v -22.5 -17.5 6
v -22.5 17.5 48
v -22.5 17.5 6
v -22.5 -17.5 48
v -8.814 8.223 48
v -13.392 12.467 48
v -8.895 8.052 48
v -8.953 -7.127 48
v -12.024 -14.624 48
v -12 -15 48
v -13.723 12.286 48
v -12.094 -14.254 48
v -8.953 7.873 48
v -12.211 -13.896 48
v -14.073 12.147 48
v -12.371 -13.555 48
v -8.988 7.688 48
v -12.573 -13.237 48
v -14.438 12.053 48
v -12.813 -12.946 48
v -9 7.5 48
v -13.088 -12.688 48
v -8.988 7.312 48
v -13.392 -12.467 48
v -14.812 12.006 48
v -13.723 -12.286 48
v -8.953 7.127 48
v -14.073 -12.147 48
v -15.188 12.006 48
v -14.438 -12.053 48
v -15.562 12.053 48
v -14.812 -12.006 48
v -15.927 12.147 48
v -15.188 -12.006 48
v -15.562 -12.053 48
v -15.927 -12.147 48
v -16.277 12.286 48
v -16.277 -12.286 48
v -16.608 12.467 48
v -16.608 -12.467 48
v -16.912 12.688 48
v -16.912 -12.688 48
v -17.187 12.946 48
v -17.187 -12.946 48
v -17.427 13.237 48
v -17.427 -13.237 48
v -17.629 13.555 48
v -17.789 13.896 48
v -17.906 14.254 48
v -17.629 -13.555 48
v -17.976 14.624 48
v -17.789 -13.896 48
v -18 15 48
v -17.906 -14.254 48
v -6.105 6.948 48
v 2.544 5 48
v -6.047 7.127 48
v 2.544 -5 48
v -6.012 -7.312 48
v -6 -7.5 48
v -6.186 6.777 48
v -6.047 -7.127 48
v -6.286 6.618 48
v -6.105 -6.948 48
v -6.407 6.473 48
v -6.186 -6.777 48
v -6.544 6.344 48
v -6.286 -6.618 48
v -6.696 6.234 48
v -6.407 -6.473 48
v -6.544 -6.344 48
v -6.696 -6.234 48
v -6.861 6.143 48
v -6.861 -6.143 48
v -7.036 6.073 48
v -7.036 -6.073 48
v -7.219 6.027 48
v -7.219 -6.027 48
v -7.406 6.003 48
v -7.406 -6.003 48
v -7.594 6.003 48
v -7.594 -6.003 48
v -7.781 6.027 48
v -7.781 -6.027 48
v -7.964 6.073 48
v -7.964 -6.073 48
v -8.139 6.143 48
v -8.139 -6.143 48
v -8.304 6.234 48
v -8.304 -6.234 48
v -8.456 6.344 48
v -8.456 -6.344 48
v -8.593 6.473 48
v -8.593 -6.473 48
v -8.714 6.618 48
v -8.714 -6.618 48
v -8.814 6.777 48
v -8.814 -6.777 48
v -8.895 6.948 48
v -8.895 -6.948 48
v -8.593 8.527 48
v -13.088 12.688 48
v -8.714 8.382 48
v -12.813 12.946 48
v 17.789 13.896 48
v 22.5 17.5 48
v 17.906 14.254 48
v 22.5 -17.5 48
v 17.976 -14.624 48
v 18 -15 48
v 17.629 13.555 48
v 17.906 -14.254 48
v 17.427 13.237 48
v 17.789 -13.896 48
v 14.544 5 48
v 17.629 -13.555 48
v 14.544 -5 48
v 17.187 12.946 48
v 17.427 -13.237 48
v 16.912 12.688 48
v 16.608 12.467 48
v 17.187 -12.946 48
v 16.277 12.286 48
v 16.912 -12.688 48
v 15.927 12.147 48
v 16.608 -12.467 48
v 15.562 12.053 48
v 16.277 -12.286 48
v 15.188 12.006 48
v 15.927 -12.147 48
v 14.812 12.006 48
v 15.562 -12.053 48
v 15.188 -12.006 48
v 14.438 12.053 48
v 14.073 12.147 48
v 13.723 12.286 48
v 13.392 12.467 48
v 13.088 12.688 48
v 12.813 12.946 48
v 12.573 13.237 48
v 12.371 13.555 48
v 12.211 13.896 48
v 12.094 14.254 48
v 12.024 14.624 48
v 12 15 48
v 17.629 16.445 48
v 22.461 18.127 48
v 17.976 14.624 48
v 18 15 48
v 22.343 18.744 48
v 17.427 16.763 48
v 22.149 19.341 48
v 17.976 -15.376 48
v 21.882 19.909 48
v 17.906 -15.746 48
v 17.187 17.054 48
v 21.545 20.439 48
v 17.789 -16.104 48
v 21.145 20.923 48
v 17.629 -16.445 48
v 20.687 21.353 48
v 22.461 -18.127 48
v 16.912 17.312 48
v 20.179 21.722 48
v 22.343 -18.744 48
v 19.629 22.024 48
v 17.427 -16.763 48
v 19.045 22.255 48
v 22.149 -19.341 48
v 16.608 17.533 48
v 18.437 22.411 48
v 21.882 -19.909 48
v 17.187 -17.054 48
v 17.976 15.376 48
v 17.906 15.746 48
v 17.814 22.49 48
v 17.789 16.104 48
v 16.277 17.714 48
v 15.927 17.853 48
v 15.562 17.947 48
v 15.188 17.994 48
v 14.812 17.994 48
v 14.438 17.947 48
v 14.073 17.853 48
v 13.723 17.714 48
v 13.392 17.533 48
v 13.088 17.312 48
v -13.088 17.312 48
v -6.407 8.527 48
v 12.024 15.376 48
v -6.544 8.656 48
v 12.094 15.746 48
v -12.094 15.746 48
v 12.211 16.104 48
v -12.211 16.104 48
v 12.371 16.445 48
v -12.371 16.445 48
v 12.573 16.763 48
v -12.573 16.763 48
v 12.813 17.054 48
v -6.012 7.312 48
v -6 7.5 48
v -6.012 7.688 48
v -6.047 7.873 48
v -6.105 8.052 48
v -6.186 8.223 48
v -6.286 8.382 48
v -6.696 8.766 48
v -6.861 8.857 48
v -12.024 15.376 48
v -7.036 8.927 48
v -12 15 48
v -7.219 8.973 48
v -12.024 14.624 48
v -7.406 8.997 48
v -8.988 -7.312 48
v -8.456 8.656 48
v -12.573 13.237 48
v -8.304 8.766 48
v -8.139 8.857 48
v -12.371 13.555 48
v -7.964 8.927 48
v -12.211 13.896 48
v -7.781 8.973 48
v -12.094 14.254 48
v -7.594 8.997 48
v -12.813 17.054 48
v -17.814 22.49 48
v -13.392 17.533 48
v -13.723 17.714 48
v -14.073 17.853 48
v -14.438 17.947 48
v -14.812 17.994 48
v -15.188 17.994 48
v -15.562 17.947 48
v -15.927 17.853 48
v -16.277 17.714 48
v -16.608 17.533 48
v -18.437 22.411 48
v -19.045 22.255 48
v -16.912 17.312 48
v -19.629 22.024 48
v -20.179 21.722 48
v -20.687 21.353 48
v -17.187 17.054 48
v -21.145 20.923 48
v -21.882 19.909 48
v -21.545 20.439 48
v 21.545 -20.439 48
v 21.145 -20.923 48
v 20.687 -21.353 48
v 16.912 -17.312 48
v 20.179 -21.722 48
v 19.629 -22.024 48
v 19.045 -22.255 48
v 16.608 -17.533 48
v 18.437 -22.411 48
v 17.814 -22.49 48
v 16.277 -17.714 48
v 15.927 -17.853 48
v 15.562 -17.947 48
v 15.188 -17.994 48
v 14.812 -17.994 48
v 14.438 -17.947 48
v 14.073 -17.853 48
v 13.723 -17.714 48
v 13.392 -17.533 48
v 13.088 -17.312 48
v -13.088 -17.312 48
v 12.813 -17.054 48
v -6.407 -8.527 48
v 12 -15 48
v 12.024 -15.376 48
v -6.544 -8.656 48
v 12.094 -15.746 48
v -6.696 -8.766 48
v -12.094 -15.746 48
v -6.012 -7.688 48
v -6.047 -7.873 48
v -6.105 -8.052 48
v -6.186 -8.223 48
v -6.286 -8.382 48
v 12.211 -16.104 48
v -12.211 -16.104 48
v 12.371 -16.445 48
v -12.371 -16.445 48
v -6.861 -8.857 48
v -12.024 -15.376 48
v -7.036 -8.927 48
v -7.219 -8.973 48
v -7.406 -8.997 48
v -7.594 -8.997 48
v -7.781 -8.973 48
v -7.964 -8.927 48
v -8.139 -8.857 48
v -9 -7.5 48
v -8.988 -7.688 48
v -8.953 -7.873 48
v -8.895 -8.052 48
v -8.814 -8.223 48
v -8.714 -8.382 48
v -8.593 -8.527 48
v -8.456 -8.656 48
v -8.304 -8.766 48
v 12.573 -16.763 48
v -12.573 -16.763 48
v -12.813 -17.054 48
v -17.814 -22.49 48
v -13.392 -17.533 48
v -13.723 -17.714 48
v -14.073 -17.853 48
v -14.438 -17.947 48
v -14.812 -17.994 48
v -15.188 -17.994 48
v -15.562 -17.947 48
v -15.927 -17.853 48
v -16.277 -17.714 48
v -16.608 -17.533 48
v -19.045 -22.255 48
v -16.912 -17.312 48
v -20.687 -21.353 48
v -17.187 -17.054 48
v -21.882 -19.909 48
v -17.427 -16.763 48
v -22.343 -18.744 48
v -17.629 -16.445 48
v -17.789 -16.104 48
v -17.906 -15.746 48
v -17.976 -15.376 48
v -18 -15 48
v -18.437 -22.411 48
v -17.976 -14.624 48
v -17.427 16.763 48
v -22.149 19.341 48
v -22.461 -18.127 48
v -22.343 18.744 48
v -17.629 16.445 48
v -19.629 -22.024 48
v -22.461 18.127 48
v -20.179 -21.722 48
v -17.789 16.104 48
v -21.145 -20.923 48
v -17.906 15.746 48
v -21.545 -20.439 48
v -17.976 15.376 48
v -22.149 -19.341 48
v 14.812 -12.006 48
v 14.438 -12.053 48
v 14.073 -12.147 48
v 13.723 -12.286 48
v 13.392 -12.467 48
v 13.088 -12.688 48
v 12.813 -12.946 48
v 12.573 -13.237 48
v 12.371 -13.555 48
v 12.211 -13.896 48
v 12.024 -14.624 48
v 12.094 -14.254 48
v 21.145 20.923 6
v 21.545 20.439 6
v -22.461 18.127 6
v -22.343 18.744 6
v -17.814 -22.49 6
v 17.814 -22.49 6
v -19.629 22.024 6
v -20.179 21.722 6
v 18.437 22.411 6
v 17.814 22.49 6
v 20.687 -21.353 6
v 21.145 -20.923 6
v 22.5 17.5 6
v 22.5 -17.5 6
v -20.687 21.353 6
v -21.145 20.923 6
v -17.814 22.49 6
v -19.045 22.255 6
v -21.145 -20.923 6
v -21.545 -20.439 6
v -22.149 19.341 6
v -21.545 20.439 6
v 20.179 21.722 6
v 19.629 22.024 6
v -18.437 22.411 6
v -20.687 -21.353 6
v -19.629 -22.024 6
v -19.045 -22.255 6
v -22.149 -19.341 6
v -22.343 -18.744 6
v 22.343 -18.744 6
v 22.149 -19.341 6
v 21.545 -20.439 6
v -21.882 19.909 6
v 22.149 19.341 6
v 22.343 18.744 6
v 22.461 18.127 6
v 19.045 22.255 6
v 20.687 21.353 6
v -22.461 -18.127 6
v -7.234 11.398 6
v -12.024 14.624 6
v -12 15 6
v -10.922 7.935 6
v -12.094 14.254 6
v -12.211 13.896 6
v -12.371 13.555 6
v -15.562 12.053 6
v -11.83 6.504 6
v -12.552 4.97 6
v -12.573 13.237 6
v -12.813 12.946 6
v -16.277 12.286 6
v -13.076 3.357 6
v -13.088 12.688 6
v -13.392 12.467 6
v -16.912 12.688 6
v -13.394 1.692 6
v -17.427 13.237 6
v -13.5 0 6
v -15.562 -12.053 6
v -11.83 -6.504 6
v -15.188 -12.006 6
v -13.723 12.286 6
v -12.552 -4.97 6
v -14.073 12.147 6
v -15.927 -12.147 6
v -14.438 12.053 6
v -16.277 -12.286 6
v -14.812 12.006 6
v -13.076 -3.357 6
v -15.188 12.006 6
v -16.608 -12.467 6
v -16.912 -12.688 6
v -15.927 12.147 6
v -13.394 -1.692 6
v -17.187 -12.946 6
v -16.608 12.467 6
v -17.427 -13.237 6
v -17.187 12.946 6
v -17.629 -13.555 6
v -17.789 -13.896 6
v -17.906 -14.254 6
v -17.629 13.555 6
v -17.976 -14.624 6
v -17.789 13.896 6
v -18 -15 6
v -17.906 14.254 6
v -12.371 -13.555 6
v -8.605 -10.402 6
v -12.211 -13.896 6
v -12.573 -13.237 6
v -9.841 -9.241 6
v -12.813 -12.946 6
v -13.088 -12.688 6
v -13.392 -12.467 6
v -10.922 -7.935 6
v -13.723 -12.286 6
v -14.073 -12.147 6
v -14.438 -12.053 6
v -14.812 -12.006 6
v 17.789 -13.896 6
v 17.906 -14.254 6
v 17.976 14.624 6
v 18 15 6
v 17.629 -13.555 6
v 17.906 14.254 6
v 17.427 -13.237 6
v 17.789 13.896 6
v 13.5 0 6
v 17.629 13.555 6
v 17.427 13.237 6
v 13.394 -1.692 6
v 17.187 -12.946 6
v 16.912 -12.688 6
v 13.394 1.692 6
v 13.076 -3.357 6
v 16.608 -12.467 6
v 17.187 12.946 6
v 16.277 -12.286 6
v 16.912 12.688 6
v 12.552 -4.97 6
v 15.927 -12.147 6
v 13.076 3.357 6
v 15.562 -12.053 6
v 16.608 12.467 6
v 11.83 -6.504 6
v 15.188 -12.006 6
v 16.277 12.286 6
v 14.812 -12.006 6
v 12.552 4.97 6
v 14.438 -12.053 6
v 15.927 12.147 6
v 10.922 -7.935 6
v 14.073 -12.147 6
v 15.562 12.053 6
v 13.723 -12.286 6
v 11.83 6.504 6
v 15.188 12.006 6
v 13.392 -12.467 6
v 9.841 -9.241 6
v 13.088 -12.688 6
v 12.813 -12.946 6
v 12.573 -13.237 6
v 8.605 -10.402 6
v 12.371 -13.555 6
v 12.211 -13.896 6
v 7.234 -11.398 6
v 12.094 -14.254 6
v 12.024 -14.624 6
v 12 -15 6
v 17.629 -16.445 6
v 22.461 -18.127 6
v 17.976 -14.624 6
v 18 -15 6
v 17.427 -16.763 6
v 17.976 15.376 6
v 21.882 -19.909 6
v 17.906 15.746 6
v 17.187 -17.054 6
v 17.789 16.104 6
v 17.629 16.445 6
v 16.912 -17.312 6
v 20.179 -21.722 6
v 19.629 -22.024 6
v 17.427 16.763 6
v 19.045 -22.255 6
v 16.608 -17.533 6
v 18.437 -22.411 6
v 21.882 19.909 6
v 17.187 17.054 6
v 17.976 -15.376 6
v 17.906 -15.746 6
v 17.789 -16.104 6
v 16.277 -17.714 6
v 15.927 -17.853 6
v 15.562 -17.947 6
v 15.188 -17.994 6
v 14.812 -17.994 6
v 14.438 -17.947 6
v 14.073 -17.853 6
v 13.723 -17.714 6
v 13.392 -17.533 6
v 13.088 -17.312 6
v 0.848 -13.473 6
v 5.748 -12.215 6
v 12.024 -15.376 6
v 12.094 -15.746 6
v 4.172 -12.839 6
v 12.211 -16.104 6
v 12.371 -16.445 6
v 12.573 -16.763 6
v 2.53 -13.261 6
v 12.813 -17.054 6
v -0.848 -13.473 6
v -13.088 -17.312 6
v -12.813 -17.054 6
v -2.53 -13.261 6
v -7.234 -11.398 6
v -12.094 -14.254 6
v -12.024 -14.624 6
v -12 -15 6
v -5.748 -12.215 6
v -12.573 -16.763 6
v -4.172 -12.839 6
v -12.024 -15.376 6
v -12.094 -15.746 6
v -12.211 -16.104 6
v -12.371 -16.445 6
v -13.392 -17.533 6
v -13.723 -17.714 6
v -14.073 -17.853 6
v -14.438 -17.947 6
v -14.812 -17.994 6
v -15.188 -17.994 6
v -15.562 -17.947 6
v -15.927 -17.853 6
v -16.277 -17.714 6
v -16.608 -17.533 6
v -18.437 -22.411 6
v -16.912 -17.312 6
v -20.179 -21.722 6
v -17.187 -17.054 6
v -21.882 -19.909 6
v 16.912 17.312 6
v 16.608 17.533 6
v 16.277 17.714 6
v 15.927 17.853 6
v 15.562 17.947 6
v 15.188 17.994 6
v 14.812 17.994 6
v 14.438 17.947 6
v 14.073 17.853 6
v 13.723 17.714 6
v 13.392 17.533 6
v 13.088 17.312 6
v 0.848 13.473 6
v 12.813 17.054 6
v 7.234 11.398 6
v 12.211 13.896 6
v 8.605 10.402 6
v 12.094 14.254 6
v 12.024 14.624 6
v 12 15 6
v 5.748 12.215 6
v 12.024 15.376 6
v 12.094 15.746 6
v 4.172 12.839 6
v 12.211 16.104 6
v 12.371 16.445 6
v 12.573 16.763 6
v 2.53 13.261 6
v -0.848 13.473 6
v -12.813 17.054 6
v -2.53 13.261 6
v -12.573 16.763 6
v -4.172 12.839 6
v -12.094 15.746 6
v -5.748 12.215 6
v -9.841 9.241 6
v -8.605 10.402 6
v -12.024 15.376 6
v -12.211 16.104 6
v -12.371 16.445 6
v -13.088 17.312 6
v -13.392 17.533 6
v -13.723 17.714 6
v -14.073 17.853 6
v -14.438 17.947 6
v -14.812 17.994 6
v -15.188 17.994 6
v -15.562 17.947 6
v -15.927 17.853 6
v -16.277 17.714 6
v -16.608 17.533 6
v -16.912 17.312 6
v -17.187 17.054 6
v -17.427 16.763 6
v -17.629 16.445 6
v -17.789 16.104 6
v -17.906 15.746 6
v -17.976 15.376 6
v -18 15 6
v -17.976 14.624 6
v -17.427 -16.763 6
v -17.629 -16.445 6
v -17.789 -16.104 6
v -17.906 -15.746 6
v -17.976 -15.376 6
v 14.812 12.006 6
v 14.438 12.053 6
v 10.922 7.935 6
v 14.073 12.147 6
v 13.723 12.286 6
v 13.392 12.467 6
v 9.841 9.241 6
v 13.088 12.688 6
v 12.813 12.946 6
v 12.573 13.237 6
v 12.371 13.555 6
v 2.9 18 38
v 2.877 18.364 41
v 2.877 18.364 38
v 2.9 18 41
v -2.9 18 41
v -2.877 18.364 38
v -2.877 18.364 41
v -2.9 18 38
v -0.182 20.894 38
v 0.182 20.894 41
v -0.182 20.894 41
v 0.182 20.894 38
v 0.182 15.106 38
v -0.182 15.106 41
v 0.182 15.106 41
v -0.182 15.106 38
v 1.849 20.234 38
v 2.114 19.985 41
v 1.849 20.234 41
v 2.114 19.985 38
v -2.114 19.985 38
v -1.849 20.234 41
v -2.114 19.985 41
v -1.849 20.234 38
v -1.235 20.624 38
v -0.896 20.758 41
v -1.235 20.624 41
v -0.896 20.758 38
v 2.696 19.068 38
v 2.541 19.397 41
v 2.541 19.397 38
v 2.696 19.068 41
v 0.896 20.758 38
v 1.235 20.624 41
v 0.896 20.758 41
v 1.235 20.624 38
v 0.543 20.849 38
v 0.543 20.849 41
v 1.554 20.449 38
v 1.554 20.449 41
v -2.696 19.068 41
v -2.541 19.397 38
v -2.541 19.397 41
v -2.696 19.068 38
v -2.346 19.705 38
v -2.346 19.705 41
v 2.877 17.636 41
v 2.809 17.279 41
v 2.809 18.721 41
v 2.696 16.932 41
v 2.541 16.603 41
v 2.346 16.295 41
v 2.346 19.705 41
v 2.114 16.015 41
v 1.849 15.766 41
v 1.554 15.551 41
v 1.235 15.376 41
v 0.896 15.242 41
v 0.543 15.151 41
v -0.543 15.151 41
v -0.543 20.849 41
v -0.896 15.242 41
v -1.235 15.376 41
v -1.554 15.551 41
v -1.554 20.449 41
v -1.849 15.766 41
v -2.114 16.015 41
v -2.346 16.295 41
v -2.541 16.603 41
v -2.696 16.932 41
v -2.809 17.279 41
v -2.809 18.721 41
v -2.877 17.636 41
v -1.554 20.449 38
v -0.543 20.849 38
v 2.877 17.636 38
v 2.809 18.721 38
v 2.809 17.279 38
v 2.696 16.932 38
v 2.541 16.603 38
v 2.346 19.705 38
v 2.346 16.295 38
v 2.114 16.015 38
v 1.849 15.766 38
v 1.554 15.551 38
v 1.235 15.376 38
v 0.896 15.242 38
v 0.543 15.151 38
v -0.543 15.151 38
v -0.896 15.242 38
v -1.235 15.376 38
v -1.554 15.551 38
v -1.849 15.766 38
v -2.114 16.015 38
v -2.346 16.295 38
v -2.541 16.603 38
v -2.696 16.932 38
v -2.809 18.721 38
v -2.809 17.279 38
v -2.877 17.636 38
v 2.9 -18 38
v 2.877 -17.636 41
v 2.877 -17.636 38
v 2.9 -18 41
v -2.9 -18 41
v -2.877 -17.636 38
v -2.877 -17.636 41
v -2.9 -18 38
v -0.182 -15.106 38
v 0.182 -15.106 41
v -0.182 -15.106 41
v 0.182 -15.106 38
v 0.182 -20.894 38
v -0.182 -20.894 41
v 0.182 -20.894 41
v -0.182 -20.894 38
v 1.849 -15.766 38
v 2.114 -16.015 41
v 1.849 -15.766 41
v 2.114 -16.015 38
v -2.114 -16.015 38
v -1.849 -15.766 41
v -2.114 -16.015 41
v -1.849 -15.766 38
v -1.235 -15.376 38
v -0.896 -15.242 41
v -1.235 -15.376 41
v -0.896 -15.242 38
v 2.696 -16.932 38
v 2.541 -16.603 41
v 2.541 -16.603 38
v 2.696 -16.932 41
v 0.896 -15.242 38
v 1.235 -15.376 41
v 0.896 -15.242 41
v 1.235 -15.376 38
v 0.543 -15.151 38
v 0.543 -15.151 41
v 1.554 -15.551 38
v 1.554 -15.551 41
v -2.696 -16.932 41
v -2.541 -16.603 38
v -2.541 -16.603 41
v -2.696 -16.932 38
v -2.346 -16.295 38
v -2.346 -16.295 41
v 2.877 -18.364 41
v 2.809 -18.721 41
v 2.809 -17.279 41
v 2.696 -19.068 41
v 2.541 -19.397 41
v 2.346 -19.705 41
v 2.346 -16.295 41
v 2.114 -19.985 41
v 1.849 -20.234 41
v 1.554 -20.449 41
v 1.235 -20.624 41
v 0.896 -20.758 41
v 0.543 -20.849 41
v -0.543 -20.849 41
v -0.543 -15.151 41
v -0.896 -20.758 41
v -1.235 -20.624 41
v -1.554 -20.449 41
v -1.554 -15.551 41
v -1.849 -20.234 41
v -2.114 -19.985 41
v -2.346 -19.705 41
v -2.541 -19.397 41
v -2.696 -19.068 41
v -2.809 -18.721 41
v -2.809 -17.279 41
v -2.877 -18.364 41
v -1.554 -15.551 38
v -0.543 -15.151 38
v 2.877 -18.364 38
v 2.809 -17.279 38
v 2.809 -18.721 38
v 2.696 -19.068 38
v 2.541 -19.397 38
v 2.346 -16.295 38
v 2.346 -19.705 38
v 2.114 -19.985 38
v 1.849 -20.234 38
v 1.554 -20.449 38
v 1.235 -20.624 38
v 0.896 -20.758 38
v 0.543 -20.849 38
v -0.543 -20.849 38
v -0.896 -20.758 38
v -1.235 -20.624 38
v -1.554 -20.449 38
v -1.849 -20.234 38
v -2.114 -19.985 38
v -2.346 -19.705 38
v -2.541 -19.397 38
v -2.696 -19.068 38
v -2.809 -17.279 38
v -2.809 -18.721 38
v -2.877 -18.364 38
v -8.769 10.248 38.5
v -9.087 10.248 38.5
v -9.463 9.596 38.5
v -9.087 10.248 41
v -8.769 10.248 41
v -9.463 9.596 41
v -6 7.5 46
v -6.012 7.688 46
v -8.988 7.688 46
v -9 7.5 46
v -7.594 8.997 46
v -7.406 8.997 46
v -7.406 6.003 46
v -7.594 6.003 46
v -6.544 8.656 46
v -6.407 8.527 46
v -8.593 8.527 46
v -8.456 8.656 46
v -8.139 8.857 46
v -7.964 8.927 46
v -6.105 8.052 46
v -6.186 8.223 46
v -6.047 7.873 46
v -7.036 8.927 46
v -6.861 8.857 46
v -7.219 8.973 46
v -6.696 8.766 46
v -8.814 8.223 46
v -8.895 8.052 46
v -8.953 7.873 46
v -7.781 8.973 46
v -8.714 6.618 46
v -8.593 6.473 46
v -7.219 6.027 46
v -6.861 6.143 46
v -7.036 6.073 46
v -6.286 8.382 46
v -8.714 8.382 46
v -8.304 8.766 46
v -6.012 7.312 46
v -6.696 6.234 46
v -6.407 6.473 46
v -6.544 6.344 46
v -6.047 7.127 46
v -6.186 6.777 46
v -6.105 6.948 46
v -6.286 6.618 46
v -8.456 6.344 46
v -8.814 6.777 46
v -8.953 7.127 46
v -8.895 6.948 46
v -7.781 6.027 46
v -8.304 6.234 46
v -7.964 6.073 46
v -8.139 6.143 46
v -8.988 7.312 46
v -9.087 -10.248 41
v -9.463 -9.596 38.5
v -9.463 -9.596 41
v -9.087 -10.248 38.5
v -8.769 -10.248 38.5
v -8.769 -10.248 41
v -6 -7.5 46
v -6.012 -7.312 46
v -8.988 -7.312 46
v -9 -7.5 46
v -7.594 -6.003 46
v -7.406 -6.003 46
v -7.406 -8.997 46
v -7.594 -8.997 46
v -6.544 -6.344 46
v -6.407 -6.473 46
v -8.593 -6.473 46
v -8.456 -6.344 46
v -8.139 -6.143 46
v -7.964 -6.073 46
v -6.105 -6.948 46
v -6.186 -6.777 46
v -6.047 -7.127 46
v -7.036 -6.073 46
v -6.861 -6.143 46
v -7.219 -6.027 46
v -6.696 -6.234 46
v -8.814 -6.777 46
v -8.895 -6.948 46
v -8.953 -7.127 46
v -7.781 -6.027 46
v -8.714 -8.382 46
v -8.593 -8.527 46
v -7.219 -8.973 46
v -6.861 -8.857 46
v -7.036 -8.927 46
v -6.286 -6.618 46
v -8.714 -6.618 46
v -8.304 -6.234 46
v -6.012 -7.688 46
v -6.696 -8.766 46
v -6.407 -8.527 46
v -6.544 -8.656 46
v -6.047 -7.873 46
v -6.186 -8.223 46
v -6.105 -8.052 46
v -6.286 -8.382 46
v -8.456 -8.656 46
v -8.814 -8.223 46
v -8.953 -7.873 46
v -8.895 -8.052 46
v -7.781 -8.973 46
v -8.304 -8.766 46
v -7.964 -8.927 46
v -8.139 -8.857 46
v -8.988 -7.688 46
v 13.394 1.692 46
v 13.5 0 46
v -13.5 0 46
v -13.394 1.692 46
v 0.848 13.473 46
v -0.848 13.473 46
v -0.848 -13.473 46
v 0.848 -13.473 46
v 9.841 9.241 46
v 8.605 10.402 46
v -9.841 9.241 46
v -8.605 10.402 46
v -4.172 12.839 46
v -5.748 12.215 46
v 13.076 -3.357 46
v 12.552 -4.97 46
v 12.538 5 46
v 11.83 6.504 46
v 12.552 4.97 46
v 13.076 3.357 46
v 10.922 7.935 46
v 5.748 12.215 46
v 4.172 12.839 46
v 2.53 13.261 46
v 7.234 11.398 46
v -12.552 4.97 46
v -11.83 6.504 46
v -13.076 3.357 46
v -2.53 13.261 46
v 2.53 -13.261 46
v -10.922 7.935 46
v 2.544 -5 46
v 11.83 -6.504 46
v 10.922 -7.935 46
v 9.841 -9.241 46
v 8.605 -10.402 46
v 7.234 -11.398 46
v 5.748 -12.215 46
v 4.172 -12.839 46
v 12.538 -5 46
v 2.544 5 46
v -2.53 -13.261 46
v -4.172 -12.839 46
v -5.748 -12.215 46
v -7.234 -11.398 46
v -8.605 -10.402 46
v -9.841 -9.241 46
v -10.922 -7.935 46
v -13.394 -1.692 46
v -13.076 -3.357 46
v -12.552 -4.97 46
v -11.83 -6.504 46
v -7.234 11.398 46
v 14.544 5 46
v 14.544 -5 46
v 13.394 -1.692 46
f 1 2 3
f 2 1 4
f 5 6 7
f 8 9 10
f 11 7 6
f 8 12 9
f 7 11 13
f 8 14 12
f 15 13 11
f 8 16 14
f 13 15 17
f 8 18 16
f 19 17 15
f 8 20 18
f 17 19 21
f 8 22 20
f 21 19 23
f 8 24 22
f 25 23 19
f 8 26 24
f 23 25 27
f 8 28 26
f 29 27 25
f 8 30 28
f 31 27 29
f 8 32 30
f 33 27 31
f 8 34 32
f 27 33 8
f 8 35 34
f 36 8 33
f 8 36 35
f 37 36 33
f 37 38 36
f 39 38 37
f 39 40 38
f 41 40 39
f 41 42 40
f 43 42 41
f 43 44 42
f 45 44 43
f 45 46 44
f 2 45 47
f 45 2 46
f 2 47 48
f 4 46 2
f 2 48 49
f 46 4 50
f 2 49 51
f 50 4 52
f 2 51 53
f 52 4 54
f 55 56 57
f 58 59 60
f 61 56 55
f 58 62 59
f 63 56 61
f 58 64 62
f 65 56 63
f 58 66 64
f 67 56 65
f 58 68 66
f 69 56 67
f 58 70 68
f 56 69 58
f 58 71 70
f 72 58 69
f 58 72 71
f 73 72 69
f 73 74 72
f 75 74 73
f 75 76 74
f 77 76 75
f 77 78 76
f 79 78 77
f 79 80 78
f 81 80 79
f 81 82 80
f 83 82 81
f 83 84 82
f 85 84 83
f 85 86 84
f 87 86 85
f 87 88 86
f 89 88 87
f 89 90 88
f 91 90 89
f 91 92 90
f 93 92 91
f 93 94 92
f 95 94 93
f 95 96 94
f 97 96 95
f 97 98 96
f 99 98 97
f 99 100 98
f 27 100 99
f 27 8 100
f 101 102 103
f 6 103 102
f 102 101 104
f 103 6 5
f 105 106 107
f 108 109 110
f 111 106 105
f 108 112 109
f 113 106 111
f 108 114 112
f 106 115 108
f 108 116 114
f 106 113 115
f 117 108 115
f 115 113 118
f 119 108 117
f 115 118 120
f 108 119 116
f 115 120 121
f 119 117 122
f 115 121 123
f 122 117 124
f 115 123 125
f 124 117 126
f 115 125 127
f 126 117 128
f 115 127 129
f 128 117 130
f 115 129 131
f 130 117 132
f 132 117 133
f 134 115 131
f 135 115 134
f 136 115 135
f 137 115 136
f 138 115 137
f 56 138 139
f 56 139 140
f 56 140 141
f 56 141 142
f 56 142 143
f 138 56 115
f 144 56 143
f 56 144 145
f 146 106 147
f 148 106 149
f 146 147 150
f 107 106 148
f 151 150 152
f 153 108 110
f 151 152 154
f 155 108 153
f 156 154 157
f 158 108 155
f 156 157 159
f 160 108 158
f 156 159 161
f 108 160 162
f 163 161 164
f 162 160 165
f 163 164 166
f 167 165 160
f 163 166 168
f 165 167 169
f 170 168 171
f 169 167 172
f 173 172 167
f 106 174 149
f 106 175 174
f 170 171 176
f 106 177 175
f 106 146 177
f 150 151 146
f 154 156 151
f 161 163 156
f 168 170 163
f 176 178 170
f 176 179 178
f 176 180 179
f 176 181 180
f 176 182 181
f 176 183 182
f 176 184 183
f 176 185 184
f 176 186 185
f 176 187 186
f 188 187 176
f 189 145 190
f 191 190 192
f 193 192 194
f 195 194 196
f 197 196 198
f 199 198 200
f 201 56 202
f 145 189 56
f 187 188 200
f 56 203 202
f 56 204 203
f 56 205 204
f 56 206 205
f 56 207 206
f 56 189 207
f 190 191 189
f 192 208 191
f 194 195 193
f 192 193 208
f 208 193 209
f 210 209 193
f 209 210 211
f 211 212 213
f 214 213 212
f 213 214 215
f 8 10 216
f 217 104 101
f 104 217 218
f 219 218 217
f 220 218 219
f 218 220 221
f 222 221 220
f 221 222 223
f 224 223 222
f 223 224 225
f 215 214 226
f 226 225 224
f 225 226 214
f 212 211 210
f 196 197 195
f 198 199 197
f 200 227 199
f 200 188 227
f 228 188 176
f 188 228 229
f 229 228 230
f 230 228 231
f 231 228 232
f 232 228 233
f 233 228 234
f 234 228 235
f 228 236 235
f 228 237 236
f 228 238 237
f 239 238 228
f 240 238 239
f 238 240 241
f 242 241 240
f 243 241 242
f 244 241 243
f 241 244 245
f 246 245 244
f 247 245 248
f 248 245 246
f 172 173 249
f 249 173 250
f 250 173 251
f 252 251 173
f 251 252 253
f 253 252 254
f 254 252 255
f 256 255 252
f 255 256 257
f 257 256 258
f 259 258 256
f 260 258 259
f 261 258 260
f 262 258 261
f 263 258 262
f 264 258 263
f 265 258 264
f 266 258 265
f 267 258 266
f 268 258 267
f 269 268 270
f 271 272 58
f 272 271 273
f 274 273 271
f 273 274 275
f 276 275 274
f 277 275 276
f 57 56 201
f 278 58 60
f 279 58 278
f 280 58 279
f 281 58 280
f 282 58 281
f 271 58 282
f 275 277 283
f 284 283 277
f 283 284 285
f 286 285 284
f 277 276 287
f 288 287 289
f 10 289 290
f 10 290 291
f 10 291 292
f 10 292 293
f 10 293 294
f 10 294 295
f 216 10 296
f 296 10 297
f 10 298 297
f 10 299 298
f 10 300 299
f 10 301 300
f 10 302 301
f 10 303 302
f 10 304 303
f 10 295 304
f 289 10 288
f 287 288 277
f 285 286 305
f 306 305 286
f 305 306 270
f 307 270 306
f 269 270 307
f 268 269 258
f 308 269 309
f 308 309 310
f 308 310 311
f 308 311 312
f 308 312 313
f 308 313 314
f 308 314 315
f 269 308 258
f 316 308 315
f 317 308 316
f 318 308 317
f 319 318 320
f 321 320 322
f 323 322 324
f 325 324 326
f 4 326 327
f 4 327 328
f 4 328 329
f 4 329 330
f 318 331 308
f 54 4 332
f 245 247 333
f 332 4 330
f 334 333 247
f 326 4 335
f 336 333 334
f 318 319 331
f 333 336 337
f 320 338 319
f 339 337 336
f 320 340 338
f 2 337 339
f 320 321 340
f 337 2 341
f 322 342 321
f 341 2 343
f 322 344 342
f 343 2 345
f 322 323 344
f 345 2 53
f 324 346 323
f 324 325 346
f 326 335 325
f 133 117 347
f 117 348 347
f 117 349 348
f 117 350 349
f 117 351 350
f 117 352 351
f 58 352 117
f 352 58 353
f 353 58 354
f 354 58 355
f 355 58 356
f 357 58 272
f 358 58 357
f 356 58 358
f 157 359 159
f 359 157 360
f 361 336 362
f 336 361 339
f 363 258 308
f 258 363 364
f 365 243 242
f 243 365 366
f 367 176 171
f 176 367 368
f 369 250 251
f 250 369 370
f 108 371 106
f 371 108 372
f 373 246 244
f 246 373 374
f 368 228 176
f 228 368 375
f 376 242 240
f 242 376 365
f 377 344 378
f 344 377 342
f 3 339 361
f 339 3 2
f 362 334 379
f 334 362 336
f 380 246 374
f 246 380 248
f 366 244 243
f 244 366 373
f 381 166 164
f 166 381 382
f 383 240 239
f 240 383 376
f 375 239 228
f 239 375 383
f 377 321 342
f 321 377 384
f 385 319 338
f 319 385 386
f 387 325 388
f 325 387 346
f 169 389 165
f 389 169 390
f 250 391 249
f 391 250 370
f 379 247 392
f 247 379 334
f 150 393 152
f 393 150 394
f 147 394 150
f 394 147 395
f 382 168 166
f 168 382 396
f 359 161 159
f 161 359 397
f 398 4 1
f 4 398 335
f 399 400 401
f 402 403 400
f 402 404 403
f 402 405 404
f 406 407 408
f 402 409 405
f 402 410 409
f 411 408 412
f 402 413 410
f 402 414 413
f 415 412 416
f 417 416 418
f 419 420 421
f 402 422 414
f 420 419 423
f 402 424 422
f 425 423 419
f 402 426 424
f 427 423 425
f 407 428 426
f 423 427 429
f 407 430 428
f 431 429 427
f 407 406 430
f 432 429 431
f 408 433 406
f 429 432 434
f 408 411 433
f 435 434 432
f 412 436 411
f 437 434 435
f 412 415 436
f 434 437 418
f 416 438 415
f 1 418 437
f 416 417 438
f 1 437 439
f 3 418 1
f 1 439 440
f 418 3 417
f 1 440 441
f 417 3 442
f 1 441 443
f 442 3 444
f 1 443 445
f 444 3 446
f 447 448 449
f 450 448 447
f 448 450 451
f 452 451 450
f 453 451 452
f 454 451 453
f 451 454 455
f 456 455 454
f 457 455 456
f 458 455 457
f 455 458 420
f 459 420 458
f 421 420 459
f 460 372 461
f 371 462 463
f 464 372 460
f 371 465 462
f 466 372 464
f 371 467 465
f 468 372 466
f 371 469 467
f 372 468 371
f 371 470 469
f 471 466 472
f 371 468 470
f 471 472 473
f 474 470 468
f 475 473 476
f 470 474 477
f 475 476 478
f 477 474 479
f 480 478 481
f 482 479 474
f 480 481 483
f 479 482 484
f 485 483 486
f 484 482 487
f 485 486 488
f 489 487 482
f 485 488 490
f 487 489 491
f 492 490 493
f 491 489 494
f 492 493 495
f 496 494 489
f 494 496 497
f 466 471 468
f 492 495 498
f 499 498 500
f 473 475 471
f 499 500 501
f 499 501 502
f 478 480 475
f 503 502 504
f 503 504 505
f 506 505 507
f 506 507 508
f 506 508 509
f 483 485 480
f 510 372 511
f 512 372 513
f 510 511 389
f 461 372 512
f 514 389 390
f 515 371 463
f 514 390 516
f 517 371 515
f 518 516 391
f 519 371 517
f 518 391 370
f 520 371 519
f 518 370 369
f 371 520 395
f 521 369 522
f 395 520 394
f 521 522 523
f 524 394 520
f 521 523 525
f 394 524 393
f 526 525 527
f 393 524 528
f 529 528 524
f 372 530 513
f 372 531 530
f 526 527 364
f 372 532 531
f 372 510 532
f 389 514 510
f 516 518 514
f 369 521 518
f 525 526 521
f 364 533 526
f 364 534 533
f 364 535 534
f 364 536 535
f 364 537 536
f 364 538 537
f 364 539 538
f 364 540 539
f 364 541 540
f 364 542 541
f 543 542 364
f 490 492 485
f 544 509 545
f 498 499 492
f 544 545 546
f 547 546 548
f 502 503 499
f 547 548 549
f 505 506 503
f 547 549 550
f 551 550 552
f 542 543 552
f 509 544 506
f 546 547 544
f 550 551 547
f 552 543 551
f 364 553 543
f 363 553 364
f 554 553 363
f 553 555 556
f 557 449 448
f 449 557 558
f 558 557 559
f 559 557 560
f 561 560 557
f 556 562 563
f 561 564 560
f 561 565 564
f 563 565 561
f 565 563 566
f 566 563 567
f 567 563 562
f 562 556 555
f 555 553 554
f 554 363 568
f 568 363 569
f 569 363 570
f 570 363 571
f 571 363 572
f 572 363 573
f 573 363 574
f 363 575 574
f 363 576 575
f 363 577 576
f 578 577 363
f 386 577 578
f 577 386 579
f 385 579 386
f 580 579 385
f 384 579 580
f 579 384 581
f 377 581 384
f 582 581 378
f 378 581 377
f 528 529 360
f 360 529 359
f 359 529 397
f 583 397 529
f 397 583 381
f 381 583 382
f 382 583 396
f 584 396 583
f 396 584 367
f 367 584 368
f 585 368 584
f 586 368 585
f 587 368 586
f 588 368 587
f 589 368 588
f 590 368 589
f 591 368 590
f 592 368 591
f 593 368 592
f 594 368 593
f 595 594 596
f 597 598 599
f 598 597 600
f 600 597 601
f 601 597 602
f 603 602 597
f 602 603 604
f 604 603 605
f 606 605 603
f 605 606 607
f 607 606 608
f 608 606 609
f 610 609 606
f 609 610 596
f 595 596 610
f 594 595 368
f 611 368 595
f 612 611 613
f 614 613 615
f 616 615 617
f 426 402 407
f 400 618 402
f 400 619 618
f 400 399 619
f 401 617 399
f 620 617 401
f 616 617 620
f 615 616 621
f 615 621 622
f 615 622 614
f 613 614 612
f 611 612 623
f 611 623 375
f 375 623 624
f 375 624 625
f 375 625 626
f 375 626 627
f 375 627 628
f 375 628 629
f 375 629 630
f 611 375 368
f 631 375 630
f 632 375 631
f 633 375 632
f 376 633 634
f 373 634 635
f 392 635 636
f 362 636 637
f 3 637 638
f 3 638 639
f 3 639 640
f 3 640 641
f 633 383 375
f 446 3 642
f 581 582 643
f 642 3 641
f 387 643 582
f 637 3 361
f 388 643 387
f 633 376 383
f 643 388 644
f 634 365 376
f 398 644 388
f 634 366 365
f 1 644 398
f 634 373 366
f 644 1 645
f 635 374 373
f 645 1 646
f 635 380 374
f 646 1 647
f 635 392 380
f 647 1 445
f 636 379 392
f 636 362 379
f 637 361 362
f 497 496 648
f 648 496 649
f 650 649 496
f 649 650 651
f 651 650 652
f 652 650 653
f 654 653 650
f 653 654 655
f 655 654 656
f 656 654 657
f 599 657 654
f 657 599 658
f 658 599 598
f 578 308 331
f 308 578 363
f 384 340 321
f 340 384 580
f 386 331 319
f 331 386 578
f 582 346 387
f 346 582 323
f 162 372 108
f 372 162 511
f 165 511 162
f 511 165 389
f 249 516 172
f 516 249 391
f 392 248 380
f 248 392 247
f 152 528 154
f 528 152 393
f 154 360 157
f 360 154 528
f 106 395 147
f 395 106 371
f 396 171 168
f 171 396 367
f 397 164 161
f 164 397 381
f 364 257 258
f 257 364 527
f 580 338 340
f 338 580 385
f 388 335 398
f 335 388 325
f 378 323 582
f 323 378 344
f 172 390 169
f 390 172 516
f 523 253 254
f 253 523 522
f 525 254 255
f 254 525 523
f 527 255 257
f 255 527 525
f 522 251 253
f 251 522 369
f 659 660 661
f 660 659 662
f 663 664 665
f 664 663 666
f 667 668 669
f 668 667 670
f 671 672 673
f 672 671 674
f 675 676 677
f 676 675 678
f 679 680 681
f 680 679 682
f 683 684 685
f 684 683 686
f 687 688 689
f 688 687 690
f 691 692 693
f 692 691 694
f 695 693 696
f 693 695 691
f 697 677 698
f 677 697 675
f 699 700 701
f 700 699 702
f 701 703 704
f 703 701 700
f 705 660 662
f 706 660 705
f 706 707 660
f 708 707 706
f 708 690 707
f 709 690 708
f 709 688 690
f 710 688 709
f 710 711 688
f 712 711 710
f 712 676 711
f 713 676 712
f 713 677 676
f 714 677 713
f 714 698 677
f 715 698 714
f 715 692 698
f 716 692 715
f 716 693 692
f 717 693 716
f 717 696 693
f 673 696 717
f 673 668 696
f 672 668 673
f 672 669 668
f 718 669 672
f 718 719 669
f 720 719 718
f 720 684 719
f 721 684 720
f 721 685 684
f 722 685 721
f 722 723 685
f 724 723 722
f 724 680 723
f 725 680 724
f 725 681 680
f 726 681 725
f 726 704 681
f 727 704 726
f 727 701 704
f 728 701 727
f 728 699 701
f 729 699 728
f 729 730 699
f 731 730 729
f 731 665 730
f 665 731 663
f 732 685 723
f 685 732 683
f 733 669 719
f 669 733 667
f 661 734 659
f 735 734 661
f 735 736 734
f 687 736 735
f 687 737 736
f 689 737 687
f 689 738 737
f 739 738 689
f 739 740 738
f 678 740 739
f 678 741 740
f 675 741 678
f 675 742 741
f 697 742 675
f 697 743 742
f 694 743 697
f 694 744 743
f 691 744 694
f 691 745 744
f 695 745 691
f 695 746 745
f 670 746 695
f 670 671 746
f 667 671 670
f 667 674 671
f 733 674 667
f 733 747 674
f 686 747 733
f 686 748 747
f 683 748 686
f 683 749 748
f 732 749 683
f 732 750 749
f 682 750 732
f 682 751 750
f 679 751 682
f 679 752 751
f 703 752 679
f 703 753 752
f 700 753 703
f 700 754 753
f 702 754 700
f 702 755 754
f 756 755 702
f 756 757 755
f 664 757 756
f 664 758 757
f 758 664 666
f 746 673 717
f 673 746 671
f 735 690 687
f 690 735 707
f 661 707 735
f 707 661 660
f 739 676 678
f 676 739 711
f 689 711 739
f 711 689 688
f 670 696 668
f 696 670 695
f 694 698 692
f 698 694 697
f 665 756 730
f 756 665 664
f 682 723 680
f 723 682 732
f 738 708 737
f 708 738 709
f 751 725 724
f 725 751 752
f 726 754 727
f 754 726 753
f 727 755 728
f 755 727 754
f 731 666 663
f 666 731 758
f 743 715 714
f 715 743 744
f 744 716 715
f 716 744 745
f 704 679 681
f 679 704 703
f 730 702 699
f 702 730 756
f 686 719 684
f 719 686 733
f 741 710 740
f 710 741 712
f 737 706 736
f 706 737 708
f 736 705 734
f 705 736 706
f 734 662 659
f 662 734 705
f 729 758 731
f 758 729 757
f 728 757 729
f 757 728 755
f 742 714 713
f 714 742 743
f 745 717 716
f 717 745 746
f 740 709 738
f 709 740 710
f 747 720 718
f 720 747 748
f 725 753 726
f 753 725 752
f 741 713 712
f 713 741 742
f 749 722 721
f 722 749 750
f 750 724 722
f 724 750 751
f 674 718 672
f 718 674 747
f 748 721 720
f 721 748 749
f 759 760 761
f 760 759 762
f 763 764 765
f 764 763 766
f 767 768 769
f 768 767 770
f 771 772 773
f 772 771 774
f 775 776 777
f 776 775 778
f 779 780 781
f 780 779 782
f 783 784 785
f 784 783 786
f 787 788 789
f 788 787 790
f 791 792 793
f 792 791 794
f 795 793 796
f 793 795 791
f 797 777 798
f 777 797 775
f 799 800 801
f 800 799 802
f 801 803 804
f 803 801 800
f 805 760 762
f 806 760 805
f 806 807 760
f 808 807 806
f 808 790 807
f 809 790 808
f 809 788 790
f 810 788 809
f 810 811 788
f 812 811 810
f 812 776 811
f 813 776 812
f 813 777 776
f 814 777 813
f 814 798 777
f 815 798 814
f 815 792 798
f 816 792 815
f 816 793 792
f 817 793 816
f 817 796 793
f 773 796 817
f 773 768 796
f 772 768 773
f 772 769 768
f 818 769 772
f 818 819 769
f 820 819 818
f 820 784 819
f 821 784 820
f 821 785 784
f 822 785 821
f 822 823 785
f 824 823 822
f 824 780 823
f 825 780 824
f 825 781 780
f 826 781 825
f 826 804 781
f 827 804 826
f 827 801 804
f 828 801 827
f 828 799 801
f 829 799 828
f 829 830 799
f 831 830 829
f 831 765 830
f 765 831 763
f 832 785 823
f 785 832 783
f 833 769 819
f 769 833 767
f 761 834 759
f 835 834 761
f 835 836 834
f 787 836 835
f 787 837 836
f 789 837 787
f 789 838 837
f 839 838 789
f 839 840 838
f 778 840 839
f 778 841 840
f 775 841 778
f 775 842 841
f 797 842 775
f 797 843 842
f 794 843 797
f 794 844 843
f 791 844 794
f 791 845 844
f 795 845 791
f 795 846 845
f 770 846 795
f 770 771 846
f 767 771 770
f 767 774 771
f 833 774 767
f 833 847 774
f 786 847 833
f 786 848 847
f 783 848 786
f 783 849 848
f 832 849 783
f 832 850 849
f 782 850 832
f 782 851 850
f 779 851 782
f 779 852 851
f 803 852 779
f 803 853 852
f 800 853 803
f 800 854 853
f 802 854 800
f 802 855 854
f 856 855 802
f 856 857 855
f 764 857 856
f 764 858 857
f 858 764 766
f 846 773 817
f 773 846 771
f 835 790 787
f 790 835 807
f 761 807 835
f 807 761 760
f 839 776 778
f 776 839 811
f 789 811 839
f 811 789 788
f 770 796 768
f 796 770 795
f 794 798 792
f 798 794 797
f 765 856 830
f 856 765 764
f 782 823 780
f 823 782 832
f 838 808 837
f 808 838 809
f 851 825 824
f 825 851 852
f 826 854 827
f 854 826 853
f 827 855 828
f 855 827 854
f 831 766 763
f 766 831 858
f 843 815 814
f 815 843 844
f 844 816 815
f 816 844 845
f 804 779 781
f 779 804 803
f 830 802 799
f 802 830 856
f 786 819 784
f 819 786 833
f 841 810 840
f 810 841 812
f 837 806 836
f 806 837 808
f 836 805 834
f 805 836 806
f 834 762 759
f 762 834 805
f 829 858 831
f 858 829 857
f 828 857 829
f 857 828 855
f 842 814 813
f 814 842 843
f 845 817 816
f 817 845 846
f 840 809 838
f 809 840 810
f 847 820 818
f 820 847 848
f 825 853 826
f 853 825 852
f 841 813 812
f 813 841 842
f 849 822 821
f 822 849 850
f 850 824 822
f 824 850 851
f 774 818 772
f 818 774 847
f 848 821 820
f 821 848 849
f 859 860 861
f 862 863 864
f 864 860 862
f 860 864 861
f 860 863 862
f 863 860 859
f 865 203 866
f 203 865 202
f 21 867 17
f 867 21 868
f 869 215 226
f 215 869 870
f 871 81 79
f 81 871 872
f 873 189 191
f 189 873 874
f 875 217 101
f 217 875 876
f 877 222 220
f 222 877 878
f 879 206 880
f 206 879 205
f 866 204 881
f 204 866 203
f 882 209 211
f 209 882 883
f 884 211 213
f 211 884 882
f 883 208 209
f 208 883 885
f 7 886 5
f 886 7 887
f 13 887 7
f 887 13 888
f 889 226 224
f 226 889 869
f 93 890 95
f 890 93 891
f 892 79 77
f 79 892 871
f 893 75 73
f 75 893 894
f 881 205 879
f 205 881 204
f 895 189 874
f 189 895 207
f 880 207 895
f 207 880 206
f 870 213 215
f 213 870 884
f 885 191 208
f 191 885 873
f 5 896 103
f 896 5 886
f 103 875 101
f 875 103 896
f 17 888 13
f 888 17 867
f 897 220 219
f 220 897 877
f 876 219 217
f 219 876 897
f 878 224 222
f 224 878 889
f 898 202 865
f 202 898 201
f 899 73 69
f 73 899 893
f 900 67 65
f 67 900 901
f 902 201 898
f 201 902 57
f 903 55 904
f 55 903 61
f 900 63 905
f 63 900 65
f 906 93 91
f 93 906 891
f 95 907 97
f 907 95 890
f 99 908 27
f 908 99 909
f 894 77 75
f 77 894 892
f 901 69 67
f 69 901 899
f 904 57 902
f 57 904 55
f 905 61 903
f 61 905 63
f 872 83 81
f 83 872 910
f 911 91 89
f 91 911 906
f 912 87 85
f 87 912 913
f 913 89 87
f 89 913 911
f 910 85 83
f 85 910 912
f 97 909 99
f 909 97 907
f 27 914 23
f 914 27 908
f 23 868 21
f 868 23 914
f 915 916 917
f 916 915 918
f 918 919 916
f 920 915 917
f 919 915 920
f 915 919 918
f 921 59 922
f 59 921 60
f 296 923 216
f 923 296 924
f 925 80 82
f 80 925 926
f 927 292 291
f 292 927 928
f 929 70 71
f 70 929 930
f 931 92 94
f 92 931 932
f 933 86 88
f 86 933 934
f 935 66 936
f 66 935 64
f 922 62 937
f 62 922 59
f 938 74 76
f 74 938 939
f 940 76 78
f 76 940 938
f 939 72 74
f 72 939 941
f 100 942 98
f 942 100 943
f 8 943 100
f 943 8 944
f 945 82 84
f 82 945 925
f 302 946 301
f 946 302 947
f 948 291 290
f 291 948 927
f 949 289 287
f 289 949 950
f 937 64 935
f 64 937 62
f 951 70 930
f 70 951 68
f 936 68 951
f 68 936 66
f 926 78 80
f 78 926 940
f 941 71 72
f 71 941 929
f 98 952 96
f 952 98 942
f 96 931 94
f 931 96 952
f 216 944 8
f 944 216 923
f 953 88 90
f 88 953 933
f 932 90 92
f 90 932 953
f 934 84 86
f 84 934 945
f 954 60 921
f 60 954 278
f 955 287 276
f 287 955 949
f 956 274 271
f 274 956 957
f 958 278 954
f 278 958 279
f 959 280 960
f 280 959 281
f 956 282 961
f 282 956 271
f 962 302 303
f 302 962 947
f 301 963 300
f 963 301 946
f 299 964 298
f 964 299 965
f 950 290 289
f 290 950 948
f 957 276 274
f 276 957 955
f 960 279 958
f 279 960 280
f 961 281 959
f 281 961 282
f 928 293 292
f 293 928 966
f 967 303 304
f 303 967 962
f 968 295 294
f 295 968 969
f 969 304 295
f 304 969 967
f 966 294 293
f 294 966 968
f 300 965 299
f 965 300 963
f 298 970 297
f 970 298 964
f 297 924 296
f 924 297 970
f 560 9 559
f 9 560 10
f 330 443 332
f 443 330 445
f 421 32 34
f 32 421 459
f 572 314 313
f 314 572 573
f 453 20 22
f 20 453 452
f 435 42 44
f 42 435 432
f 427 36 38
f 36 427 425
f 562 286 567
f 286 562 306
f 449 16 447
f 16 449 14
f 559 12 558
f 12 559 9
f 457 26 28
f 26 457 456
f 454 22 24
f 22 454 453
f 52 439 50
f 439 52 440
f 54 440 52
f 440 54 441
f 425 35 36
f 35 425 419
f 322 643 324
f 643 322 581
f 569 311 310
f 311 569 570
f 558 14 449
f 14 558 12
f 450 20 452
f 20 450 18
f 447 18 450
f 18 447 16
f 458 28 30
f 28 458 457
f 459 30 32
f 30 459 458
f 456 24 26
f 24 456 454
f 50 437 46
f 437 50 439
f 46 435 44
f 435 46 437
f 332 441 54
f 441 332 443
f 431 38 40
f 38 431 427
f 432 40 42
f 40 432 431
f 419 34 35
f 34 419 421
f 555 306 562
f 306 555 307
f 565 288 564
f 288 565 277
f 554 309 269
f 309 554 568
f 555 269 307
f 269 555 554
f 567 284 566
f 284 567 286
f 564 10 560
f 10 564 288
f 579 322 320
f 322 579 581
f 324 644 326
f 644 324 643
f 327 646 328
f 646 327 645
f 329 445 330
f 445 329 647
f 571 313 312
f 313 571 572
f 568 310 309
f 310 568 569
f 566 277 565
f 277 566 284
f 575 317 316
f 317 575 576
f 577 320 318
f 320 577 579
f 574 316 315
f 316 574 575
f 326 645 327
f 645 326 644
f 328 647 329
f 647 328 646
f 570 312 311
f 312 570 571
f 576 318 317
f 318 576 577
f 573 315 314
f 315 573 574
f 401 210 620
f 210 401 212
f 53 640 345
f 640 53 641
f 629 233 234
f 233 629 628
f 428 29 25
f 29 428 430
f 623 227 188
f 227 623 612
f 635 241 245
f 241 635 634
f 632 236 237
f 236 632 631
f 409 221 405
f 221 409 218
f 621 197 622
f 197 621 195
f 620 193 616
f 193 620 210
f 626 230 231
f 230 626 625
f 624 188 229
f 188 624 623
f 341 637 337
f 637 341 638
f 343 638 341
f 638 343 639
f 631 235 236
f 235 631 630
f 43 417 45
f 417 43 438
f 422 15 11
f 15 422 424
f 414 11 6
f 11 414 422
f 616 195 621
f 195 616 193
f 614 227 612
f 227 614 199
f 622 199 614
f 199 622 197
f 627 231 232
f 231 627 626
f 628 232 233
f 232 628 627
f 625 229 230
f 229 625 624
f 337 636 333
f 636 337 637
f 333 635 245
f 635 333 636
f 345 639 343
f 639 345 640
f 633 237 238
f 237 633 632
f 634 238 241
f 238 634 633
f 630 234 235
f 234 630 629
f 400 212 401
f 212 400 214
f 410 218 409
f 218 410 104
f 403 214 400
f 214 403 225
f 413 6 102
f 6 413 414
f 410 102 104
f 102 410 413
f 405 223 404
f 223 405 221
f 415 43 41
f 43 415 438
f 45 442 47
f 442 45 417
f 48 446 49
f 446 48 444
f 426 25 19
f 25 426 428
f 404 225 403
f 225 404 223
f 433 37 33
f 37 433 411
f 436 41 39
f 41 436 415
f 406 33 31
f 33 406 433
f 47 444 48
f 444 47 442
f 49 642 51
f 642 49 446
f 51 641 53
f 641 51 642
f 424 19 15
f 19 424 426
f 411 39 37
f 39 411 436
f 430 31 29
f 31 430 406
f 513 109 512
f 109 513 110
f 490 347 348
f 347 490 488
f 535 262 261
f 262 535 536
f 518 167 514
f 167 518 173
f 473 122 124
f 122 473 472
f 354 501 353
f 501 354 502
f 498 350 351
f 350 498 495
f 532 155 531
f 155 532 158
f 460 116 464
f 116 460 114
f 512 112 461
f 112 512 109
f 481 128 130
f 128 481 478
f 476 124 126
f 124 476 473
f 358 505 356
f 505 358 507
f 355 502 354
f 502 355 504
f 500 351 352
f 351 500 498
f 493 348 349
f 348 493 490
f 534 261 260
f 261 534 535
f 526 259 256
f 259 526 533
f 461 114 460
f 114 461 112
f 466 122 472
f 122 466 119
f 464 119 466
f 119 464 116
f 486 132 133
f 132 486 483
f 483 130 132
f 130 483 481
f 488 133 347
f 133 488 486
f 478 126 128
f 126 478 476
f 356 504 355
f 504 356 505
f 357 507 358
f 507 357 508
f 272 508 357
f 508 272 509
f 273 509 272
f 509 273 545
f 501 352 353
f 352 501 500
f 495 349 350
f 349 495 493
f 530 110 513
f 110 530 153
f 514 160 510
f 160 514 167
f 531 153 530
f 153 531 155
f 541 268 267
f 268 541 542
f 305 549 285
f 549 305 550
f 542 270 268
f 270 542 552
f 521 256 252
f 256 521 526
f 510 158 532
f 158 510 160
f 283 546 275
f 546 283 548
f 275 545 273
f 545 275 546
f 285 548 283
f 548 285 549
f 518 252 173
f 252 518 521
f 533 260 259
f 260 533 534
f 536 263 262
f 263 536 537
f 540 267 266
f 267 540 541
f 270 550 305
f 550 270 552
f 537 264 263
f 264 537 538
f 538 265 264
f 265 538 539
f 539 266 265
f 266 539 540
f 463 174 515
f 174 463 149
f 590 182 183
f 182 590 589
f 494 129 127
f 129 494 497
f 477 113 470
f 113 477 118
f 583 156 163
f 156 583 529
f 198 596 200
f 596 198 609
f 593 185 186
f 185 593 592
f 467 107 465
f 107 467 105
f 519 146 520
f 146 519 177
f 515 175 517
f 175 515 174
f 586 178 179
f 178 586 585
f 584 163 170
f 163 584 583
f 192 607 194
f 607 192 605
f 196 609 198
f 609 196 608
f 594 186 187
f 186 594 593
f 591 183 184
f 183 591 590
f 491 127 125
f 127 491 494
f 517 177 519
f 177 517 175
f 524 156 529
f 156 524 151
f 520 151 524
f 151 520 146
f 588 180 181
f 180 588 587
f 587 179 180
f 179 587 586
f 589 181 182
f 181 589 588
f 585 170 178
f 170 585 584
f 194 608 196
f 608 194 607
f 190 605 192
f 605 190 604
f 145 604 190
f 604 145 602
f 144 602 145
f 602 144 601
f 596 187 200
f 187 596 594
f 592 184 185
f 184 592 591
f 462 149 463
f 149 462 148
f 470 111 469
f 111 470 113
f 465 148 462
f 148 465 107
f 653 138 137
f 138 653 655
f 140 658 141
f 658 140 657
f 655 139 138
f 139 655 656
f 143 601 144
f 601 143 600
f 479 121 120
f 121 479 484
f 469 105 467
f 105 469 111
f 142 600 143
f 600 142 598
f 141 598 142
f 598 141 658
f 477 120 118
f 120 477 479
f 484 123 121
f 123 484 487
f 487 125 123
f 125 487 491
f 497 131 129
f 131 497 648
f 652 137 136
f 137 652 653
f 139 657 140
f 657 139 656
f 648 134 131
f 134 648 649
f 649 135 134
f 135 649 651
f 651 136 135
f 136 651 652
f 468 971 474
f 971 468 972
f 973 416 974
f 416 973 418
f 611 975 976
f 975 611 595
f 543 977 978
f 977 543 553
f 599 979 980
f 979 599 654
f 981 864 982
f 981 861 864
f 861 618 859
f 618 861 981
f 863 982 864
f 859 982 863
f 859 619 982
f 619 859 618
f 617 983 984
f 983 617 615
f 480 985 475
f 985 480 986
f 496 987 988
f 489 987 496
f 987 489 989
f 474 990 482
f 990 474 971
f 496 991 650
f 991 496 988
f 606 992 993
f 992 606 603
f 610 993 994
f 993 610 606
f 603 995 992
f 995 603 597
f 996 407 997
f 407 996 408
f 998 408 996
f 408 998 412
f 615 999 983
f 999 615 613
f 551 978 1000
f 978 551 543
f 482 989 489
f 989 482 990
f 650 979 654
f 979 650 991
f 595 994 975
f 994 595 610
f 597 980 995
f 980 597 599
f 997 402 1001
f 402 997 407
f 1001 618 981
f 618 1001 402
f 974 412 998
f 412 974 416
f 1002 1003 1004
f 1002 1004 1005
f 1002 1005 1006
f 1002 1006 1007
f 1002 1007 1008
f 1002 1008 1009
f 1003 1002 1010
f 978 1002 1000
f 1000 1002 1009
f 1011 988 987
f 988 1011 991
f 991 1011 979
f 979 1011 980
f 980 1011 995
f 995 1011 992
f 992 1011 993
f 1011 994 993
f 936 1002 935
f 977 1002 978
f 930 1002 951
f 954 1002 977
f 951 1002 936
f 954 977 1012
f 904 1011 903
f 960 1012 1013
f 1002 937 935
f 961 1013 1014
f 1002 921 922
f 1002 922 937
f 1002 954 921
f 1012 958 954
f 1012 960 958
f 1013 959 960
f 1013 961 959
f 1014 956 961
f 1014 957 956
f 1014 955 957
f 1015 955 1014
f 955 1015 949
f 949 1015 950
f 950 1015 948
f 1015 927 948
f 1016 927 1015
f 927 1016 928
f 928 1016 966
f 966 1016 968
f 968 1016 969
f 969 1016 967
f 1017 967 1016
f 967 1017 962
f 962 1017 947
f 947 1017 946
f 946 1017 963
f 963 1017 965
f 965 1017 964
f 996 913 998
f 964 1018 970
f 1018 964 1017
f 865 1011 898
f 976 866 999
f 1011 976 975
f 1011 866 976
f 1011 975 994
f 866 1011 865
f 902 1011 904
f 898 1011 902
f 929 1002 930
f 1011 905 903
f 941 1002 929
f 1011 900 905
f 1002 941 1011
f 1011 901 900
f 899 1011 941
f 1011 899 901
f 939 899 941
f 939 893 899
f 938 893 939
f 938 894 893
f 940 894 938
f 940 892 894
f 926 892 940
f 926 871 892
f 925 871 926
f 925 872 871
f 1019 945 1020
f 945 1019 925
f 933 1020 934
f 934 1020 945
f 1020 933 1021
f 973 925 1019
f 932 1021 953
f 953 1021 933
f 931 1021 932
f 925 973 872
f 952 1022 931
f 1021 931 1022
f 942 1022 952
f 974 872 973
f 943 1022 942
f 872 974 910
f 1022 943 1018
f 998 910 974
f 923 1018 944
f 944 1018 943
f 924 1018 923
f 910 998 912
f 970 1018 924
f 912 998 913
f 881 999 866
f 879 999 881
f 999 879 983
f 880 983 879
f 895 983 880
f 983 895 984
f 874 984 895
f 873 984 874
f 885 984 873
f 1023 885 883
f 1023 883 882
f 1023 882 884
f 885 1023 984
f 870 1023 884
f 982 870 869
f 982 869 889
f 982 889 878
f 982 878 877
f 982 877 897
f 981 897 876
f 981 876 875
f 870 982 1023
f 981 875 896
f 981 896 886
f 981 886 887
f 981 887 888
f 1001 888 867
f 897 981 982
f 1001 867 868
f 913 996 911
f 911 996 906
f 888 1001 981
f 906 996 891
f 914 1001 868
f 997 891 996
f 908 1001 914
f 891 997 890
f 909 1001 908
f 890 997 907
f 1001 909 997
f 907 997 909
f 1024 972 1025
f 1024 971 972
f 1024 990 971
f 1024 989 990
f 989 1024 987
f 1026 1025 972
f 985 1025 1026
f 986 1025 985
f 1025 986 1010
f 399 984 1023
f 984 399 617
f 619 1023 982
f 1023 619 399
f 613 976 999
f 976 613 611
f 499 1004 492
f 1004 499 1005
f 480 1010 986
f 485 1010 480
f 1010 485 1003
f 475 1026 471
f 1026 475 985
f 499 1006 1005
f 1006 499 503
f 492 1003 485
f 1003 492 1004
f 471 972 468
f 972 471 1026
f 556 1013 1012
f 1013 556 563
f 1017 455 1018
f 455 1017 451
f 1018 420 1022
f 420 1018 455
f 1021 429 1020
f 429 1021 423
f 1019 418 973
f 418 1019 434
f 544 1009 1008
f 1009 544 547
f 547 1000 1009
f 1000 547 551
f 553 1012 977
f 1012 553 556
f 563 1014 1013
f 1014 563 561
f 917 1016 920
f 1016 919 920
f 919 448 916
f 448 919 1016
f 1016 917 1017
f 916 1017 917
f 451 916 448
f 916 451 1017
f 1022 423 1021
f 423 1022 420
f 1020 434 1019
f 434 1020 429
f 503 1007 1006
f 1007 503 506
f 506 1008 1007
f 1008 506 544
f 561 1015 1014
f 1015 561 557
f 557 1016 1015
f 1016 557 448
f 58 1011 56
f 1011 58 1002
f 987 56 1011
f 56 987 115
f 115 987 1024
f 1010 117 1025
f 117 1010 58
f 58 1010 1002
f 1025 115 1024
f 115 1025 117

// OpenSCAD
$fn = 50;


difference() {
	union() {
		translate(v = [0, 0, 6]) {
			hull() {
				translate(v = [-17.5000000000, 17.5000000000, 0]) {
					cylinder(h = 42, r = 5);
				}
				translate(v = [17.5000000000, 17.5000000000, 0]) {
					cylinder(h = 42, r = 5);
				}
				translate(v = [-17.5000000000, -17.5000000000, 0]) {
					cylinder(h = 42, r = 5);
				}
				translate(v = [17.5000000000, -17.5000000000, 0]) {
					cylinder(h = 42, r = 5);
				}
			}
		}
		translate(v = [0, 0, 6]) {
			hull() {
				translate(v = [-17.5000000000, 17.5000000000, 0]) {
					cylinder(h = 42, r = 5);
				}
				translate(v = [17.5000000000, 17.5000000000, 0]) {
					cylinder(h = 42, r = 5);
				}
				translate(v = [-17.5000000000, -17.5000000000, 0]) {
					cylinder(h = 42, r = 5);
				}
				translate(v = [17.5000000000, -17.5000000000, 0]) {
					cylinder(h = 42, r = 5);
				}
			}
		}
	}
	union() {
		translate(v = [0, 18, 38]) {
			rotate(a = [0, 0, 0]) {
				difference() {
					union() {
						cylinder(h = 3, r = 2.9000000000);
						translate(v = [0, 0, -350.0000000000]) {
							cylinder(h = 200, r = 1.5000000000);
						}
						translate(v = [0, 0, -350.0000000000]) {
							cylinder(h = 200, r = 1.8000000000);
						}
						translate(v = [0, 0, -350.0000000000]) {
							cylinder(h = 200, r = 1.5000000000);
						}
					}
					union();
				}
			}
		}
		translate(v = [0, -18, 38]) {
			rotate(a = [0, 0, 0]) {
				difference() {
					union() {
						cylinder(h = 3, r = 2.9000000000);
						translate(v = [0, 0, -350.0000000000]) {
							cylinder(h = 200, r = 1.5000000000);
						}
						translate(v = [0, 0, -350.0000000000]) {
							cylinder(h = 200, r = 1.8000000000);
						}
						translate(v = [0, 0, -350.0000000000]) {
							cylinder(h = 200, r = 1.5000000000);
						}
					}
					union();
				}
			}
		}
		translate(v = [-7.5000000000, 7.5000000000, 41]) {
			rotate(a = [0, 0, 0]) {
				difference() {
					union() {
						translate(v = [0, 0, -2.5000000000]) {
							linear_extrude(height = 2.5000000000) {
								polygon(points = [[3.1735000000, 0.0000000000], [1.5867500000, 2.7483316189], [-1.5867500000, 2.7483316189], [-3.1735000000, 0.0000000000], [-1.5867500000, -2.7483316189], [1.5867500000, -2.7483316189]]);
							}
						}
						translate(v = [0, 0, -100.0000000000]) {
							cylinder(h = 200, r = 1.5000000000);
						}
						translate(v = [0, 0, -100.0000000000]) {
							cylinder(h = 200, r = 1.5000000000);
						}
						translate(v = [0, 0, -100.0000000000]) {
							cylinder(h = 200, r = 1.5000000000);
						}
					}
					union();
				}
			}
		}
		translate(v = [-7.5000000000, -7.5000000000, 41]) {
			rotate(a = [0, 0, 0]) {
				difference() {
					union() {
						translate(v = [0, 0, -2.5000000000]) {
							linear_extrude(height = 2.5000000000) {
								polygon(points = [[3.1735000000, 0.0000000000], [1.5867500000, 2.7483316189], [-1.5867500000, 2.7483316189], [-3.1735000000, 0.0000000000], [-1.5867500000, -2.7483316189], [1.5867500000, -2.7483316189]]);
							}
						}
						translate(v = [0, 0, -100.0000000000]) {
							cylinder(h = 200, r = 1.5000000000);
						}
						translate(v = [0, 0, -100.0000000000]) {
							cylinder(h = 200, r = 1.5000000000);
						}
						translate(v = [0, 0, -100.0000000000]) {
							cylinder(h = 200, r = 1.5000000000);
						}
					}
					union();
				}
			}
		}
		translate(v = [-15.0000000000, -15.0000000000, -100.0000000000]) {
			cylinder(h = 200, r = 3.0000000000);
		}
		translate(v = [-15.0000000000, 15.0000000000, -100.0000000000]) {
			cylinder(h = 200, r = 3.0000000000);
		}
		translate(v = [15.0000000000, -15.0000000000, -100.0000000000]) {
			cylinder(h = 200, r = 3.0000000000);
		}
		translate(v = [15.0000000000, 15.0000000000, -100.0000000000]) {
			cylinder(h = 200, r = 3.0000000000);
		}
		translate(v = [0, 0, -1.0000000000]) {
			cylinder(h = 47, r = 13.5000000000);
		}
		#translate(v = [2.5440000000, -5.0000000000, 46]) {
			cube(size = [7, 10, 10]);
		}
		#translate(v = [7.5440000000, -5.0000000000, 46]) {
			cube(size = [7, 10, 10]);
		}
	}
}
